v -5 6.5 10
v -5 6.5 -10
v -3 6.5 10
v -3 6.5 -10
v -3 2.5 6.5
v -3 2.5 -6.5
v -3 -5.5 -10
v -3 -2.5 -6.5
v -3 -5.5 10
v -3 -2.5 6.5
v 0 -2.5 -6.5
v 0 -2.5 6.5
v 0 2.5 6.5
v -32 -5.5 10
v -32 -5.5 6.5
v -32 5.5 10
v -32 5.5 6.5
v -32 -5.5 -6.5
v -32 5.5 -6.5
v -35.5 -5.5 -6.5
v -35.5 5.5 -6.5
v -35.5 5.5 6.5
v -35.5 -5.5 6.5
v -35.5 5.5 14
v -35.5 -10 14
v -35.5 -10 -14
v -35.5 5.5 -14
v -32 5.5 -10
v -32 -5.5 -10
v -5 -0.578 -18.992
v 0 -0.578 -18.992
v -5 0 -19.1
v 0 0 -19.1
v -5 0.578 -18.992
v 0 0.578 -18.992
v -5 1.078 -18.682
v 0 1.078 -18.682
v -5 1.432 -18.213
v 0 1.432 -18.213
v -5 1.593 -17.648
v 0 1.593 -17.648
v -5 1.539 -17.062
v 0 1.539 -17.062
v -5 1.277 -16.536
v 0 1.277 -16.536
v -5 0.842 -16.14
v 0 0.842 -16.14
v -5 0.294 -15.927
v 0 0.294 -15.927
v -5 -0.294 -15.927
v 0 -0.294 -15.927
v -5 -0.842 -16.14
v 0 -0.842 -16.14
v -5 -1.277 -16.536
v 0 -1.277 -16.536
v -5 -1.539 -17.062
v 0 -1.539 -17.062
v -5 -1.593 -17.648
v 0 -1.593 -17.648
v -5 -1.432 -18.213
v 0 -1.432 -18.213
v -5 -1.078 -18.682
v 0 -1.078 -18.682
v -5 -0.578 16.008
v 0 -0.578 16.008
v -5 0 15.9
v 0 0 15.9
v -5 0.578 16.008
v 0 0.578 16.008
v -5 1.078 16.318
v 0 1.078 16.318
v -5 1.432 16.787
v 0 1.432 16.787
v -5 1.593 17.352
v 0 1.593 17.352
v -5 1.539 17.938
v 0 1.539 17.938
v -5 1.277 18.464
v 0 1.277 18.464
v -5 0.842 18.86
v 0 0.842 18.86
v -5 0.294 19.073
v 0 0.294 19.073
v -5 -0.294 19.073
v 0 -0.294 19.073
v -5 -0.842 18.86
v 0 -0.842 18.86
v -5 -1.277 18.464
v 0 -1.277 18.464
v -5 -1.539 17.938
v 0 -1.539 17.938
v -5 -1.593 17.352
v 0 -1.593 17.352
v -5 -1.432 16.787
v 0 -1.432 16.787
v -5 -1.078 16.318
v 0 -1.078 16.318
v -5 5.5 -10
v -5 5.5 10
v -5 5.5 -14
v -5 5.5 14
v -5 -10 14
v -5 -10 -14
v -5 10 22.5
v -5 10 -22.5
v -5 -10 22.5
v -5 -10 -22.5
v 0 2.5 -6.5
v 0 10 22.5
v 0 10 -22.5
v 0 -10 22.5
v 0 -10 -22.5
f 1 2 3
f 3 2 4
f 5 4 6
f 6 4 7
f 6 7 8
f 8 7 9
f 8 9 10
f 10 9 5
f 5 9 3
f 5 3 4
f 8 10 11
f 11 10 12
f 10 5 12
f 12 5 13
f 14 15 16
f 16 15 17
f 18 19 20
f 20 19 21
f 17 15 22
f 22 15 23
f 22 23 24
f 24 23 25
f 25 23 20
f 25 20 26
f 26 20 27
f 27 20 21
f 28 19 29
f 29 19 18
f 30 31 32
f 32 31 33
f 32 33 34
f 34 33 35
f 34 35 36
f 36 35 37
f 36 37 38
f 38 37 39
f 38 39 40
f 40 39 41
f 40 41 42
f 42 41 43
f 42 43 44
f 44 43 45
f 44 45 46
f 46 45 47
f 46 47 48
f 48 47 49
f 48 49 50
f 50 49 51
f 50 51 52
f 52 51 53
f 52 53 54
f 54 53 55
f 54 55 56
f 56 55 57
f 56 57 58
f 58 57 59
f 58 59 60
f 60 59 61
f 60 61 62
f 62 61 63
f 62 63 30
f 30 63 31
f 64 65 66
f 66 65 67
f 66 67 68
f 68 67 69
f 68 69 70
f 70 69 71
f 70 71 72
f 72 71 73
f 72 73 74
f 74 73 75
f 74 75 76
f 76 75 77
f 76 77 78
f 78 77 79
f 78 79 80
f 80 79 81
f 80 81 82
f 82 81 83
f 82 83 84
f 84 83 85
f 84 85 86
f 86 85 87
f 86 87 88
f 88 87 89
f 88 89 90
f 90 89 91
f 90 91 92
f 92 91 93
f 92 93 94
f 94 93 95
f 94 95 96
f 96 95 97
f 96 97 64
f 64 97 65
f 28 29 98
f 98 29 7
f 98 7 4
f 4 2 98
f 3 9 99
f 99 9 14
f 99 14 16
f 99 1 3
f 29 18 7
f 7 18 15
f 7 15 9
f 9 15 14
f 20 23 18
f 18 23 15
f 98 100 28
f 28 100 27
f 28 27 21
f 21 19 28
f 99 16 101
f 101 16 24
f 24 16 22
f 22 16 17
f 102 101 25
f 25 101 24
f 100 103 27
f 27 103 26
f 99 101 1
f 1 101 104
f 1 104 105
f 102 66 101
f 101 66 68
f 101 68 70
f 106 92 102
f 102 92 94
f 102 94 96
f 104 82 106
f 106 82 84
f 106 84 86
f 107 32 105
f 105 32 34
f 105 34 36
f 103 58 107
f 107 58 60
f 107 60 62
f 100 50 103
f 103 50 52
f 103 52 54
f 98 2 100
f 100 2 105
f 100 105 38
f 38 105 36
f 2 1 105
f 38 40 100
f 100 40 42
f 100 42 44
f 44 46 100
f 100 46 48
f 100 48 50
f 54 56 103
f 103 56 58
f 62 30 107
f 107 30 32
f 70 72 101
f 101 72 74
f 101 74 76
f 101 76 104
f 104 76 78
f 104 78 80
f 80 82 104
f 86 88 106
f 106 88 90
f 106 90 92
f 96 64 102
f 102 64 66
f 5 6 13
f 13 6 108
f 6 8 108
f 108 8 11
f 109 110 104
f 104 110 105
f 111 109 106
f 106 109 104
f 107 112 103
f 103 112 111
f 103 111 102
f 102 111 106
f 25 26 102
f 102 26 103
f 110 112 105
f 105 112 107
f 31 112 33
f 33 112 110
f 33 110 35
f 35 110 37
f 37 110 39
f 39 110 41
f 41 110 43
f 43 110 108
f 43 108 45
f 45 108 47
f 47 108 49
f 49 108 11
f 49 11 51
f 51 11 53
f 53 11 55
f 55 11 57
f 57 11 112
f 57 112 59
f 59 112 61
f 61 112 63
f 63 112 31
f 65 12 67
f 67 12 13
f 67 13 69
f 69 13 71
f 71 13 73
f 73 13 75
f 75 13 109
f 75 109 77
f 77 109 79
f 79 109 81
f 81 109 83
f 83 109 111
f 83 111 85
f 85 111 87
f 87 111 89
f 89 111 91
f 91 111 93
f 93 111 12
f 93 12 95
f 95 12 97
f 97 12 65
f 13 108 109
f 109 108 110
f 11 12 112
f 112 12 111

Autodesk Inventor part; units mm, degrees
ref_plane "YZ Plane" through (0, 0, 0) normal (1, 0, 0) x (0, 1, 0)
ref_plane "XZ Plane" through (0, 0, 0) normal (0, 1, 0) x (-1, 0, 0)
ref_plane "XY Plane" through (0, 0, 0) normal (0, 0, 1) x (1, 0, 0)
sketch "Sketch1" plane through (0, 0, 0) normal (1, 0, 0) x (0, 1, 0)
  line L0 (-2.5, -6.5) -> (2.5, -6.5)
  line L1 (2.5, -6.5) -> (2.5, 6.5)
  line L2 (2.5, 6.5) -> (-2.5, 6.5)
  line L3 (-2.5, 6.5) -> (-2.5, -6.5)
  line L4 (-2.5, -6.5) -> (2.5, 6.5) construction
  line L5 (2.5, -6.5) -> (-2.5, 6.5) construction
  line L6 (-10, -22.5) -> (10, -22.5)
  line L7 (10, -22.5) -> (10, 22.5)
  line L8 (10, 22.5) -> (-10, 22.5)
  line L9 (-10, 22.5) -> (-10, -22.5)
  line L10 (-10, -22.5) -> (10, 22.5) construction
  line L11 (10, -22.5) -> (-10, 22.5) construction
  circle A0 centre (2.5, 17.5) radius 1.6
  circle A1 centre (0, -17.5) radius 1.6
  point P0 (0, 0)
  dimension "d0" = 5
  dimension "d1" = 13
  dimension "d2" = 20
  dimension "d3" = 45
  dimension "d17" = 5
  dimension "d18" = 3.2
  dimension "d19" = 3.2
  dimension "d20" = 5
extrude "Extrusion1" add sketch "Sketch1" against normal blind 5 contours L9 L8 L7 L6 | A0 | A1
sketch "Sketch2" plane through (-5, 0, 0) normal (-1, 0, 0) x (0, 0, 1)
  line L0 (10, -5.5) -> (-10, -5.5)
  line L1 (-10, -5.5) -> (-10, 5.5)
  line L2 (-10, 5.5) -> (10, 5.5)
  line L3 (10, 5.5) -> (10, -5.5)
  line L4 (10, -5.5) -> (-10, 5.5) construction
  line L5 (-10, -5.5) -> (10, 5.5) construction
  line L6 (22.5, 10) -> (-22.5, 10) projected
  line L7 (-14, -10) -> (-14, 5.5)
  line L8 (14, 5.5) -> (14, -10)
  line L9 (12.0522, -8.6087) -> (-14, 10) construction
  line L10 (-12.0522, -8.6087) -> (14, 10) construction
  line L11 (-14, -10) -> (14, -10)
  line L12 (-14, 5.5) -> (14, 5.5)
  point P0 (0, 0)
  dimension "d6" = 20
  dimension "d7" = 11
  dimension "d27" = 4.5
  dimension "d32" = 14
  dimension "d33" = 14
extrude "Extrusion2" add sketch "Sketch2" along normal blind 27 contours L3 L12 L8 L11 L7 L1 L0
sketch "Sketch3" plane through (0, -10, -22.5) normal (0, -1, 0) x (1, 0, 0)
  point P0 (0, 22.5)
sketch "Sketch4" plane through (-32, 0, 0) normal (-1, 0, 0) x (0, 0, 1)
  line L0 (6.5, -5.5) -> (-6.5, -5.5)
  line L1 (-6.5, -5.5) -> (-6.5, 5.5)
  line L2 (-6.5, 5.5) -> (6.5, 5.5)
  line L3 (6.5, 5.5) -> (6.5, -5.5)
  line L4 (6.5, -5.5) -> (-6.5, 5.5) construction
  line L5 (-6.5, -5.5) -> (6.5, 5.5) construction
  line L6 (12.0522, -8.6087) -> (-14, 10) construction
  line L7 (-12.5, -10) -> (12.5, 10) construction
  line L8 (14, -10) -> (14, 5.5) projected
  line L9 (-14, -10) -> (14, -10)
  line L10 (14, -10) -> (14, 5.5)
  line L11 (14, 5.5) -> (-14, 5.5)
  line L12 (-14, 5.5) -> (-14, -10)
  point P0 (0, 0)
  point P1 (14, 10)
  dimension "d11" = 13
  dimension "d12" = 11
sketch "Sketch6" plane through (0, 0, 0) normal (1, 0, 0) x (0, 0, -1)
  circle A0 centre (17.5, 0) radius 1.6
  circle A1 centre (-17.5, 0) radius 1.6
  line L0 (22.5, -10) -> (22.5, 10) projected
  line L1 (-22.5, 10) -> (-22.5, -10) projected
  line L2 (22.5, -10) -> (14, -10) projected
  point P0 (0, 0)
  dimension "d21" = 3.2
  dimension "d22" = 3.2
  dimension "d23" = 5
  dimension "d24" = 5
  dimension "d41" = 10
extrude "Extrusion5" cut sketch "Sketch6" against normal blind 5
extrude "Extrusion8" add sketch "Sketch4" along normal blind 3.5 contours L3 L11 L8 L9 L12 L1 L0
sketch "Sketch8" plane through (-5, 0, 0) normal (-1, 0, 0) x (0, 0, 1)
  line L0 (-10, 5.5) -> (-10, -5.5) projected
  line L1 (-10, -5.5) -> (10, -5.5)
  line L2 (10, -5.5) -> (10, 6.5)
  line L3 (10, 6.5) -> (-10, 6.5)
  line L4 (-10, 6.5) -> (-10, -5.5)
  point P0 (0, 0)
  dimension "d36" = 12
extrude "Extrusion10" cut sketch "Sketch8" against normal blind 2
equation "\"BendRadius\" = Thickness"
equation "\"BendReliefWidth\" = Thickness"
equation "\"BendReliefDepth\" = 0.5 * Thickness"
equation "\"CornerReliefSize\" = 4 * Thickness"
equation "\"MinimumRemnant\" = 2 * Thickness"
equation "\"TransitionRadius\" = BendRadius"
equation "\"JacobiRadiusSize\" = Thickness"
equation "\"GapSize\" = Thickness"
equation "\"Thickness\" = 0.5"
properties part number "USB_housing"
